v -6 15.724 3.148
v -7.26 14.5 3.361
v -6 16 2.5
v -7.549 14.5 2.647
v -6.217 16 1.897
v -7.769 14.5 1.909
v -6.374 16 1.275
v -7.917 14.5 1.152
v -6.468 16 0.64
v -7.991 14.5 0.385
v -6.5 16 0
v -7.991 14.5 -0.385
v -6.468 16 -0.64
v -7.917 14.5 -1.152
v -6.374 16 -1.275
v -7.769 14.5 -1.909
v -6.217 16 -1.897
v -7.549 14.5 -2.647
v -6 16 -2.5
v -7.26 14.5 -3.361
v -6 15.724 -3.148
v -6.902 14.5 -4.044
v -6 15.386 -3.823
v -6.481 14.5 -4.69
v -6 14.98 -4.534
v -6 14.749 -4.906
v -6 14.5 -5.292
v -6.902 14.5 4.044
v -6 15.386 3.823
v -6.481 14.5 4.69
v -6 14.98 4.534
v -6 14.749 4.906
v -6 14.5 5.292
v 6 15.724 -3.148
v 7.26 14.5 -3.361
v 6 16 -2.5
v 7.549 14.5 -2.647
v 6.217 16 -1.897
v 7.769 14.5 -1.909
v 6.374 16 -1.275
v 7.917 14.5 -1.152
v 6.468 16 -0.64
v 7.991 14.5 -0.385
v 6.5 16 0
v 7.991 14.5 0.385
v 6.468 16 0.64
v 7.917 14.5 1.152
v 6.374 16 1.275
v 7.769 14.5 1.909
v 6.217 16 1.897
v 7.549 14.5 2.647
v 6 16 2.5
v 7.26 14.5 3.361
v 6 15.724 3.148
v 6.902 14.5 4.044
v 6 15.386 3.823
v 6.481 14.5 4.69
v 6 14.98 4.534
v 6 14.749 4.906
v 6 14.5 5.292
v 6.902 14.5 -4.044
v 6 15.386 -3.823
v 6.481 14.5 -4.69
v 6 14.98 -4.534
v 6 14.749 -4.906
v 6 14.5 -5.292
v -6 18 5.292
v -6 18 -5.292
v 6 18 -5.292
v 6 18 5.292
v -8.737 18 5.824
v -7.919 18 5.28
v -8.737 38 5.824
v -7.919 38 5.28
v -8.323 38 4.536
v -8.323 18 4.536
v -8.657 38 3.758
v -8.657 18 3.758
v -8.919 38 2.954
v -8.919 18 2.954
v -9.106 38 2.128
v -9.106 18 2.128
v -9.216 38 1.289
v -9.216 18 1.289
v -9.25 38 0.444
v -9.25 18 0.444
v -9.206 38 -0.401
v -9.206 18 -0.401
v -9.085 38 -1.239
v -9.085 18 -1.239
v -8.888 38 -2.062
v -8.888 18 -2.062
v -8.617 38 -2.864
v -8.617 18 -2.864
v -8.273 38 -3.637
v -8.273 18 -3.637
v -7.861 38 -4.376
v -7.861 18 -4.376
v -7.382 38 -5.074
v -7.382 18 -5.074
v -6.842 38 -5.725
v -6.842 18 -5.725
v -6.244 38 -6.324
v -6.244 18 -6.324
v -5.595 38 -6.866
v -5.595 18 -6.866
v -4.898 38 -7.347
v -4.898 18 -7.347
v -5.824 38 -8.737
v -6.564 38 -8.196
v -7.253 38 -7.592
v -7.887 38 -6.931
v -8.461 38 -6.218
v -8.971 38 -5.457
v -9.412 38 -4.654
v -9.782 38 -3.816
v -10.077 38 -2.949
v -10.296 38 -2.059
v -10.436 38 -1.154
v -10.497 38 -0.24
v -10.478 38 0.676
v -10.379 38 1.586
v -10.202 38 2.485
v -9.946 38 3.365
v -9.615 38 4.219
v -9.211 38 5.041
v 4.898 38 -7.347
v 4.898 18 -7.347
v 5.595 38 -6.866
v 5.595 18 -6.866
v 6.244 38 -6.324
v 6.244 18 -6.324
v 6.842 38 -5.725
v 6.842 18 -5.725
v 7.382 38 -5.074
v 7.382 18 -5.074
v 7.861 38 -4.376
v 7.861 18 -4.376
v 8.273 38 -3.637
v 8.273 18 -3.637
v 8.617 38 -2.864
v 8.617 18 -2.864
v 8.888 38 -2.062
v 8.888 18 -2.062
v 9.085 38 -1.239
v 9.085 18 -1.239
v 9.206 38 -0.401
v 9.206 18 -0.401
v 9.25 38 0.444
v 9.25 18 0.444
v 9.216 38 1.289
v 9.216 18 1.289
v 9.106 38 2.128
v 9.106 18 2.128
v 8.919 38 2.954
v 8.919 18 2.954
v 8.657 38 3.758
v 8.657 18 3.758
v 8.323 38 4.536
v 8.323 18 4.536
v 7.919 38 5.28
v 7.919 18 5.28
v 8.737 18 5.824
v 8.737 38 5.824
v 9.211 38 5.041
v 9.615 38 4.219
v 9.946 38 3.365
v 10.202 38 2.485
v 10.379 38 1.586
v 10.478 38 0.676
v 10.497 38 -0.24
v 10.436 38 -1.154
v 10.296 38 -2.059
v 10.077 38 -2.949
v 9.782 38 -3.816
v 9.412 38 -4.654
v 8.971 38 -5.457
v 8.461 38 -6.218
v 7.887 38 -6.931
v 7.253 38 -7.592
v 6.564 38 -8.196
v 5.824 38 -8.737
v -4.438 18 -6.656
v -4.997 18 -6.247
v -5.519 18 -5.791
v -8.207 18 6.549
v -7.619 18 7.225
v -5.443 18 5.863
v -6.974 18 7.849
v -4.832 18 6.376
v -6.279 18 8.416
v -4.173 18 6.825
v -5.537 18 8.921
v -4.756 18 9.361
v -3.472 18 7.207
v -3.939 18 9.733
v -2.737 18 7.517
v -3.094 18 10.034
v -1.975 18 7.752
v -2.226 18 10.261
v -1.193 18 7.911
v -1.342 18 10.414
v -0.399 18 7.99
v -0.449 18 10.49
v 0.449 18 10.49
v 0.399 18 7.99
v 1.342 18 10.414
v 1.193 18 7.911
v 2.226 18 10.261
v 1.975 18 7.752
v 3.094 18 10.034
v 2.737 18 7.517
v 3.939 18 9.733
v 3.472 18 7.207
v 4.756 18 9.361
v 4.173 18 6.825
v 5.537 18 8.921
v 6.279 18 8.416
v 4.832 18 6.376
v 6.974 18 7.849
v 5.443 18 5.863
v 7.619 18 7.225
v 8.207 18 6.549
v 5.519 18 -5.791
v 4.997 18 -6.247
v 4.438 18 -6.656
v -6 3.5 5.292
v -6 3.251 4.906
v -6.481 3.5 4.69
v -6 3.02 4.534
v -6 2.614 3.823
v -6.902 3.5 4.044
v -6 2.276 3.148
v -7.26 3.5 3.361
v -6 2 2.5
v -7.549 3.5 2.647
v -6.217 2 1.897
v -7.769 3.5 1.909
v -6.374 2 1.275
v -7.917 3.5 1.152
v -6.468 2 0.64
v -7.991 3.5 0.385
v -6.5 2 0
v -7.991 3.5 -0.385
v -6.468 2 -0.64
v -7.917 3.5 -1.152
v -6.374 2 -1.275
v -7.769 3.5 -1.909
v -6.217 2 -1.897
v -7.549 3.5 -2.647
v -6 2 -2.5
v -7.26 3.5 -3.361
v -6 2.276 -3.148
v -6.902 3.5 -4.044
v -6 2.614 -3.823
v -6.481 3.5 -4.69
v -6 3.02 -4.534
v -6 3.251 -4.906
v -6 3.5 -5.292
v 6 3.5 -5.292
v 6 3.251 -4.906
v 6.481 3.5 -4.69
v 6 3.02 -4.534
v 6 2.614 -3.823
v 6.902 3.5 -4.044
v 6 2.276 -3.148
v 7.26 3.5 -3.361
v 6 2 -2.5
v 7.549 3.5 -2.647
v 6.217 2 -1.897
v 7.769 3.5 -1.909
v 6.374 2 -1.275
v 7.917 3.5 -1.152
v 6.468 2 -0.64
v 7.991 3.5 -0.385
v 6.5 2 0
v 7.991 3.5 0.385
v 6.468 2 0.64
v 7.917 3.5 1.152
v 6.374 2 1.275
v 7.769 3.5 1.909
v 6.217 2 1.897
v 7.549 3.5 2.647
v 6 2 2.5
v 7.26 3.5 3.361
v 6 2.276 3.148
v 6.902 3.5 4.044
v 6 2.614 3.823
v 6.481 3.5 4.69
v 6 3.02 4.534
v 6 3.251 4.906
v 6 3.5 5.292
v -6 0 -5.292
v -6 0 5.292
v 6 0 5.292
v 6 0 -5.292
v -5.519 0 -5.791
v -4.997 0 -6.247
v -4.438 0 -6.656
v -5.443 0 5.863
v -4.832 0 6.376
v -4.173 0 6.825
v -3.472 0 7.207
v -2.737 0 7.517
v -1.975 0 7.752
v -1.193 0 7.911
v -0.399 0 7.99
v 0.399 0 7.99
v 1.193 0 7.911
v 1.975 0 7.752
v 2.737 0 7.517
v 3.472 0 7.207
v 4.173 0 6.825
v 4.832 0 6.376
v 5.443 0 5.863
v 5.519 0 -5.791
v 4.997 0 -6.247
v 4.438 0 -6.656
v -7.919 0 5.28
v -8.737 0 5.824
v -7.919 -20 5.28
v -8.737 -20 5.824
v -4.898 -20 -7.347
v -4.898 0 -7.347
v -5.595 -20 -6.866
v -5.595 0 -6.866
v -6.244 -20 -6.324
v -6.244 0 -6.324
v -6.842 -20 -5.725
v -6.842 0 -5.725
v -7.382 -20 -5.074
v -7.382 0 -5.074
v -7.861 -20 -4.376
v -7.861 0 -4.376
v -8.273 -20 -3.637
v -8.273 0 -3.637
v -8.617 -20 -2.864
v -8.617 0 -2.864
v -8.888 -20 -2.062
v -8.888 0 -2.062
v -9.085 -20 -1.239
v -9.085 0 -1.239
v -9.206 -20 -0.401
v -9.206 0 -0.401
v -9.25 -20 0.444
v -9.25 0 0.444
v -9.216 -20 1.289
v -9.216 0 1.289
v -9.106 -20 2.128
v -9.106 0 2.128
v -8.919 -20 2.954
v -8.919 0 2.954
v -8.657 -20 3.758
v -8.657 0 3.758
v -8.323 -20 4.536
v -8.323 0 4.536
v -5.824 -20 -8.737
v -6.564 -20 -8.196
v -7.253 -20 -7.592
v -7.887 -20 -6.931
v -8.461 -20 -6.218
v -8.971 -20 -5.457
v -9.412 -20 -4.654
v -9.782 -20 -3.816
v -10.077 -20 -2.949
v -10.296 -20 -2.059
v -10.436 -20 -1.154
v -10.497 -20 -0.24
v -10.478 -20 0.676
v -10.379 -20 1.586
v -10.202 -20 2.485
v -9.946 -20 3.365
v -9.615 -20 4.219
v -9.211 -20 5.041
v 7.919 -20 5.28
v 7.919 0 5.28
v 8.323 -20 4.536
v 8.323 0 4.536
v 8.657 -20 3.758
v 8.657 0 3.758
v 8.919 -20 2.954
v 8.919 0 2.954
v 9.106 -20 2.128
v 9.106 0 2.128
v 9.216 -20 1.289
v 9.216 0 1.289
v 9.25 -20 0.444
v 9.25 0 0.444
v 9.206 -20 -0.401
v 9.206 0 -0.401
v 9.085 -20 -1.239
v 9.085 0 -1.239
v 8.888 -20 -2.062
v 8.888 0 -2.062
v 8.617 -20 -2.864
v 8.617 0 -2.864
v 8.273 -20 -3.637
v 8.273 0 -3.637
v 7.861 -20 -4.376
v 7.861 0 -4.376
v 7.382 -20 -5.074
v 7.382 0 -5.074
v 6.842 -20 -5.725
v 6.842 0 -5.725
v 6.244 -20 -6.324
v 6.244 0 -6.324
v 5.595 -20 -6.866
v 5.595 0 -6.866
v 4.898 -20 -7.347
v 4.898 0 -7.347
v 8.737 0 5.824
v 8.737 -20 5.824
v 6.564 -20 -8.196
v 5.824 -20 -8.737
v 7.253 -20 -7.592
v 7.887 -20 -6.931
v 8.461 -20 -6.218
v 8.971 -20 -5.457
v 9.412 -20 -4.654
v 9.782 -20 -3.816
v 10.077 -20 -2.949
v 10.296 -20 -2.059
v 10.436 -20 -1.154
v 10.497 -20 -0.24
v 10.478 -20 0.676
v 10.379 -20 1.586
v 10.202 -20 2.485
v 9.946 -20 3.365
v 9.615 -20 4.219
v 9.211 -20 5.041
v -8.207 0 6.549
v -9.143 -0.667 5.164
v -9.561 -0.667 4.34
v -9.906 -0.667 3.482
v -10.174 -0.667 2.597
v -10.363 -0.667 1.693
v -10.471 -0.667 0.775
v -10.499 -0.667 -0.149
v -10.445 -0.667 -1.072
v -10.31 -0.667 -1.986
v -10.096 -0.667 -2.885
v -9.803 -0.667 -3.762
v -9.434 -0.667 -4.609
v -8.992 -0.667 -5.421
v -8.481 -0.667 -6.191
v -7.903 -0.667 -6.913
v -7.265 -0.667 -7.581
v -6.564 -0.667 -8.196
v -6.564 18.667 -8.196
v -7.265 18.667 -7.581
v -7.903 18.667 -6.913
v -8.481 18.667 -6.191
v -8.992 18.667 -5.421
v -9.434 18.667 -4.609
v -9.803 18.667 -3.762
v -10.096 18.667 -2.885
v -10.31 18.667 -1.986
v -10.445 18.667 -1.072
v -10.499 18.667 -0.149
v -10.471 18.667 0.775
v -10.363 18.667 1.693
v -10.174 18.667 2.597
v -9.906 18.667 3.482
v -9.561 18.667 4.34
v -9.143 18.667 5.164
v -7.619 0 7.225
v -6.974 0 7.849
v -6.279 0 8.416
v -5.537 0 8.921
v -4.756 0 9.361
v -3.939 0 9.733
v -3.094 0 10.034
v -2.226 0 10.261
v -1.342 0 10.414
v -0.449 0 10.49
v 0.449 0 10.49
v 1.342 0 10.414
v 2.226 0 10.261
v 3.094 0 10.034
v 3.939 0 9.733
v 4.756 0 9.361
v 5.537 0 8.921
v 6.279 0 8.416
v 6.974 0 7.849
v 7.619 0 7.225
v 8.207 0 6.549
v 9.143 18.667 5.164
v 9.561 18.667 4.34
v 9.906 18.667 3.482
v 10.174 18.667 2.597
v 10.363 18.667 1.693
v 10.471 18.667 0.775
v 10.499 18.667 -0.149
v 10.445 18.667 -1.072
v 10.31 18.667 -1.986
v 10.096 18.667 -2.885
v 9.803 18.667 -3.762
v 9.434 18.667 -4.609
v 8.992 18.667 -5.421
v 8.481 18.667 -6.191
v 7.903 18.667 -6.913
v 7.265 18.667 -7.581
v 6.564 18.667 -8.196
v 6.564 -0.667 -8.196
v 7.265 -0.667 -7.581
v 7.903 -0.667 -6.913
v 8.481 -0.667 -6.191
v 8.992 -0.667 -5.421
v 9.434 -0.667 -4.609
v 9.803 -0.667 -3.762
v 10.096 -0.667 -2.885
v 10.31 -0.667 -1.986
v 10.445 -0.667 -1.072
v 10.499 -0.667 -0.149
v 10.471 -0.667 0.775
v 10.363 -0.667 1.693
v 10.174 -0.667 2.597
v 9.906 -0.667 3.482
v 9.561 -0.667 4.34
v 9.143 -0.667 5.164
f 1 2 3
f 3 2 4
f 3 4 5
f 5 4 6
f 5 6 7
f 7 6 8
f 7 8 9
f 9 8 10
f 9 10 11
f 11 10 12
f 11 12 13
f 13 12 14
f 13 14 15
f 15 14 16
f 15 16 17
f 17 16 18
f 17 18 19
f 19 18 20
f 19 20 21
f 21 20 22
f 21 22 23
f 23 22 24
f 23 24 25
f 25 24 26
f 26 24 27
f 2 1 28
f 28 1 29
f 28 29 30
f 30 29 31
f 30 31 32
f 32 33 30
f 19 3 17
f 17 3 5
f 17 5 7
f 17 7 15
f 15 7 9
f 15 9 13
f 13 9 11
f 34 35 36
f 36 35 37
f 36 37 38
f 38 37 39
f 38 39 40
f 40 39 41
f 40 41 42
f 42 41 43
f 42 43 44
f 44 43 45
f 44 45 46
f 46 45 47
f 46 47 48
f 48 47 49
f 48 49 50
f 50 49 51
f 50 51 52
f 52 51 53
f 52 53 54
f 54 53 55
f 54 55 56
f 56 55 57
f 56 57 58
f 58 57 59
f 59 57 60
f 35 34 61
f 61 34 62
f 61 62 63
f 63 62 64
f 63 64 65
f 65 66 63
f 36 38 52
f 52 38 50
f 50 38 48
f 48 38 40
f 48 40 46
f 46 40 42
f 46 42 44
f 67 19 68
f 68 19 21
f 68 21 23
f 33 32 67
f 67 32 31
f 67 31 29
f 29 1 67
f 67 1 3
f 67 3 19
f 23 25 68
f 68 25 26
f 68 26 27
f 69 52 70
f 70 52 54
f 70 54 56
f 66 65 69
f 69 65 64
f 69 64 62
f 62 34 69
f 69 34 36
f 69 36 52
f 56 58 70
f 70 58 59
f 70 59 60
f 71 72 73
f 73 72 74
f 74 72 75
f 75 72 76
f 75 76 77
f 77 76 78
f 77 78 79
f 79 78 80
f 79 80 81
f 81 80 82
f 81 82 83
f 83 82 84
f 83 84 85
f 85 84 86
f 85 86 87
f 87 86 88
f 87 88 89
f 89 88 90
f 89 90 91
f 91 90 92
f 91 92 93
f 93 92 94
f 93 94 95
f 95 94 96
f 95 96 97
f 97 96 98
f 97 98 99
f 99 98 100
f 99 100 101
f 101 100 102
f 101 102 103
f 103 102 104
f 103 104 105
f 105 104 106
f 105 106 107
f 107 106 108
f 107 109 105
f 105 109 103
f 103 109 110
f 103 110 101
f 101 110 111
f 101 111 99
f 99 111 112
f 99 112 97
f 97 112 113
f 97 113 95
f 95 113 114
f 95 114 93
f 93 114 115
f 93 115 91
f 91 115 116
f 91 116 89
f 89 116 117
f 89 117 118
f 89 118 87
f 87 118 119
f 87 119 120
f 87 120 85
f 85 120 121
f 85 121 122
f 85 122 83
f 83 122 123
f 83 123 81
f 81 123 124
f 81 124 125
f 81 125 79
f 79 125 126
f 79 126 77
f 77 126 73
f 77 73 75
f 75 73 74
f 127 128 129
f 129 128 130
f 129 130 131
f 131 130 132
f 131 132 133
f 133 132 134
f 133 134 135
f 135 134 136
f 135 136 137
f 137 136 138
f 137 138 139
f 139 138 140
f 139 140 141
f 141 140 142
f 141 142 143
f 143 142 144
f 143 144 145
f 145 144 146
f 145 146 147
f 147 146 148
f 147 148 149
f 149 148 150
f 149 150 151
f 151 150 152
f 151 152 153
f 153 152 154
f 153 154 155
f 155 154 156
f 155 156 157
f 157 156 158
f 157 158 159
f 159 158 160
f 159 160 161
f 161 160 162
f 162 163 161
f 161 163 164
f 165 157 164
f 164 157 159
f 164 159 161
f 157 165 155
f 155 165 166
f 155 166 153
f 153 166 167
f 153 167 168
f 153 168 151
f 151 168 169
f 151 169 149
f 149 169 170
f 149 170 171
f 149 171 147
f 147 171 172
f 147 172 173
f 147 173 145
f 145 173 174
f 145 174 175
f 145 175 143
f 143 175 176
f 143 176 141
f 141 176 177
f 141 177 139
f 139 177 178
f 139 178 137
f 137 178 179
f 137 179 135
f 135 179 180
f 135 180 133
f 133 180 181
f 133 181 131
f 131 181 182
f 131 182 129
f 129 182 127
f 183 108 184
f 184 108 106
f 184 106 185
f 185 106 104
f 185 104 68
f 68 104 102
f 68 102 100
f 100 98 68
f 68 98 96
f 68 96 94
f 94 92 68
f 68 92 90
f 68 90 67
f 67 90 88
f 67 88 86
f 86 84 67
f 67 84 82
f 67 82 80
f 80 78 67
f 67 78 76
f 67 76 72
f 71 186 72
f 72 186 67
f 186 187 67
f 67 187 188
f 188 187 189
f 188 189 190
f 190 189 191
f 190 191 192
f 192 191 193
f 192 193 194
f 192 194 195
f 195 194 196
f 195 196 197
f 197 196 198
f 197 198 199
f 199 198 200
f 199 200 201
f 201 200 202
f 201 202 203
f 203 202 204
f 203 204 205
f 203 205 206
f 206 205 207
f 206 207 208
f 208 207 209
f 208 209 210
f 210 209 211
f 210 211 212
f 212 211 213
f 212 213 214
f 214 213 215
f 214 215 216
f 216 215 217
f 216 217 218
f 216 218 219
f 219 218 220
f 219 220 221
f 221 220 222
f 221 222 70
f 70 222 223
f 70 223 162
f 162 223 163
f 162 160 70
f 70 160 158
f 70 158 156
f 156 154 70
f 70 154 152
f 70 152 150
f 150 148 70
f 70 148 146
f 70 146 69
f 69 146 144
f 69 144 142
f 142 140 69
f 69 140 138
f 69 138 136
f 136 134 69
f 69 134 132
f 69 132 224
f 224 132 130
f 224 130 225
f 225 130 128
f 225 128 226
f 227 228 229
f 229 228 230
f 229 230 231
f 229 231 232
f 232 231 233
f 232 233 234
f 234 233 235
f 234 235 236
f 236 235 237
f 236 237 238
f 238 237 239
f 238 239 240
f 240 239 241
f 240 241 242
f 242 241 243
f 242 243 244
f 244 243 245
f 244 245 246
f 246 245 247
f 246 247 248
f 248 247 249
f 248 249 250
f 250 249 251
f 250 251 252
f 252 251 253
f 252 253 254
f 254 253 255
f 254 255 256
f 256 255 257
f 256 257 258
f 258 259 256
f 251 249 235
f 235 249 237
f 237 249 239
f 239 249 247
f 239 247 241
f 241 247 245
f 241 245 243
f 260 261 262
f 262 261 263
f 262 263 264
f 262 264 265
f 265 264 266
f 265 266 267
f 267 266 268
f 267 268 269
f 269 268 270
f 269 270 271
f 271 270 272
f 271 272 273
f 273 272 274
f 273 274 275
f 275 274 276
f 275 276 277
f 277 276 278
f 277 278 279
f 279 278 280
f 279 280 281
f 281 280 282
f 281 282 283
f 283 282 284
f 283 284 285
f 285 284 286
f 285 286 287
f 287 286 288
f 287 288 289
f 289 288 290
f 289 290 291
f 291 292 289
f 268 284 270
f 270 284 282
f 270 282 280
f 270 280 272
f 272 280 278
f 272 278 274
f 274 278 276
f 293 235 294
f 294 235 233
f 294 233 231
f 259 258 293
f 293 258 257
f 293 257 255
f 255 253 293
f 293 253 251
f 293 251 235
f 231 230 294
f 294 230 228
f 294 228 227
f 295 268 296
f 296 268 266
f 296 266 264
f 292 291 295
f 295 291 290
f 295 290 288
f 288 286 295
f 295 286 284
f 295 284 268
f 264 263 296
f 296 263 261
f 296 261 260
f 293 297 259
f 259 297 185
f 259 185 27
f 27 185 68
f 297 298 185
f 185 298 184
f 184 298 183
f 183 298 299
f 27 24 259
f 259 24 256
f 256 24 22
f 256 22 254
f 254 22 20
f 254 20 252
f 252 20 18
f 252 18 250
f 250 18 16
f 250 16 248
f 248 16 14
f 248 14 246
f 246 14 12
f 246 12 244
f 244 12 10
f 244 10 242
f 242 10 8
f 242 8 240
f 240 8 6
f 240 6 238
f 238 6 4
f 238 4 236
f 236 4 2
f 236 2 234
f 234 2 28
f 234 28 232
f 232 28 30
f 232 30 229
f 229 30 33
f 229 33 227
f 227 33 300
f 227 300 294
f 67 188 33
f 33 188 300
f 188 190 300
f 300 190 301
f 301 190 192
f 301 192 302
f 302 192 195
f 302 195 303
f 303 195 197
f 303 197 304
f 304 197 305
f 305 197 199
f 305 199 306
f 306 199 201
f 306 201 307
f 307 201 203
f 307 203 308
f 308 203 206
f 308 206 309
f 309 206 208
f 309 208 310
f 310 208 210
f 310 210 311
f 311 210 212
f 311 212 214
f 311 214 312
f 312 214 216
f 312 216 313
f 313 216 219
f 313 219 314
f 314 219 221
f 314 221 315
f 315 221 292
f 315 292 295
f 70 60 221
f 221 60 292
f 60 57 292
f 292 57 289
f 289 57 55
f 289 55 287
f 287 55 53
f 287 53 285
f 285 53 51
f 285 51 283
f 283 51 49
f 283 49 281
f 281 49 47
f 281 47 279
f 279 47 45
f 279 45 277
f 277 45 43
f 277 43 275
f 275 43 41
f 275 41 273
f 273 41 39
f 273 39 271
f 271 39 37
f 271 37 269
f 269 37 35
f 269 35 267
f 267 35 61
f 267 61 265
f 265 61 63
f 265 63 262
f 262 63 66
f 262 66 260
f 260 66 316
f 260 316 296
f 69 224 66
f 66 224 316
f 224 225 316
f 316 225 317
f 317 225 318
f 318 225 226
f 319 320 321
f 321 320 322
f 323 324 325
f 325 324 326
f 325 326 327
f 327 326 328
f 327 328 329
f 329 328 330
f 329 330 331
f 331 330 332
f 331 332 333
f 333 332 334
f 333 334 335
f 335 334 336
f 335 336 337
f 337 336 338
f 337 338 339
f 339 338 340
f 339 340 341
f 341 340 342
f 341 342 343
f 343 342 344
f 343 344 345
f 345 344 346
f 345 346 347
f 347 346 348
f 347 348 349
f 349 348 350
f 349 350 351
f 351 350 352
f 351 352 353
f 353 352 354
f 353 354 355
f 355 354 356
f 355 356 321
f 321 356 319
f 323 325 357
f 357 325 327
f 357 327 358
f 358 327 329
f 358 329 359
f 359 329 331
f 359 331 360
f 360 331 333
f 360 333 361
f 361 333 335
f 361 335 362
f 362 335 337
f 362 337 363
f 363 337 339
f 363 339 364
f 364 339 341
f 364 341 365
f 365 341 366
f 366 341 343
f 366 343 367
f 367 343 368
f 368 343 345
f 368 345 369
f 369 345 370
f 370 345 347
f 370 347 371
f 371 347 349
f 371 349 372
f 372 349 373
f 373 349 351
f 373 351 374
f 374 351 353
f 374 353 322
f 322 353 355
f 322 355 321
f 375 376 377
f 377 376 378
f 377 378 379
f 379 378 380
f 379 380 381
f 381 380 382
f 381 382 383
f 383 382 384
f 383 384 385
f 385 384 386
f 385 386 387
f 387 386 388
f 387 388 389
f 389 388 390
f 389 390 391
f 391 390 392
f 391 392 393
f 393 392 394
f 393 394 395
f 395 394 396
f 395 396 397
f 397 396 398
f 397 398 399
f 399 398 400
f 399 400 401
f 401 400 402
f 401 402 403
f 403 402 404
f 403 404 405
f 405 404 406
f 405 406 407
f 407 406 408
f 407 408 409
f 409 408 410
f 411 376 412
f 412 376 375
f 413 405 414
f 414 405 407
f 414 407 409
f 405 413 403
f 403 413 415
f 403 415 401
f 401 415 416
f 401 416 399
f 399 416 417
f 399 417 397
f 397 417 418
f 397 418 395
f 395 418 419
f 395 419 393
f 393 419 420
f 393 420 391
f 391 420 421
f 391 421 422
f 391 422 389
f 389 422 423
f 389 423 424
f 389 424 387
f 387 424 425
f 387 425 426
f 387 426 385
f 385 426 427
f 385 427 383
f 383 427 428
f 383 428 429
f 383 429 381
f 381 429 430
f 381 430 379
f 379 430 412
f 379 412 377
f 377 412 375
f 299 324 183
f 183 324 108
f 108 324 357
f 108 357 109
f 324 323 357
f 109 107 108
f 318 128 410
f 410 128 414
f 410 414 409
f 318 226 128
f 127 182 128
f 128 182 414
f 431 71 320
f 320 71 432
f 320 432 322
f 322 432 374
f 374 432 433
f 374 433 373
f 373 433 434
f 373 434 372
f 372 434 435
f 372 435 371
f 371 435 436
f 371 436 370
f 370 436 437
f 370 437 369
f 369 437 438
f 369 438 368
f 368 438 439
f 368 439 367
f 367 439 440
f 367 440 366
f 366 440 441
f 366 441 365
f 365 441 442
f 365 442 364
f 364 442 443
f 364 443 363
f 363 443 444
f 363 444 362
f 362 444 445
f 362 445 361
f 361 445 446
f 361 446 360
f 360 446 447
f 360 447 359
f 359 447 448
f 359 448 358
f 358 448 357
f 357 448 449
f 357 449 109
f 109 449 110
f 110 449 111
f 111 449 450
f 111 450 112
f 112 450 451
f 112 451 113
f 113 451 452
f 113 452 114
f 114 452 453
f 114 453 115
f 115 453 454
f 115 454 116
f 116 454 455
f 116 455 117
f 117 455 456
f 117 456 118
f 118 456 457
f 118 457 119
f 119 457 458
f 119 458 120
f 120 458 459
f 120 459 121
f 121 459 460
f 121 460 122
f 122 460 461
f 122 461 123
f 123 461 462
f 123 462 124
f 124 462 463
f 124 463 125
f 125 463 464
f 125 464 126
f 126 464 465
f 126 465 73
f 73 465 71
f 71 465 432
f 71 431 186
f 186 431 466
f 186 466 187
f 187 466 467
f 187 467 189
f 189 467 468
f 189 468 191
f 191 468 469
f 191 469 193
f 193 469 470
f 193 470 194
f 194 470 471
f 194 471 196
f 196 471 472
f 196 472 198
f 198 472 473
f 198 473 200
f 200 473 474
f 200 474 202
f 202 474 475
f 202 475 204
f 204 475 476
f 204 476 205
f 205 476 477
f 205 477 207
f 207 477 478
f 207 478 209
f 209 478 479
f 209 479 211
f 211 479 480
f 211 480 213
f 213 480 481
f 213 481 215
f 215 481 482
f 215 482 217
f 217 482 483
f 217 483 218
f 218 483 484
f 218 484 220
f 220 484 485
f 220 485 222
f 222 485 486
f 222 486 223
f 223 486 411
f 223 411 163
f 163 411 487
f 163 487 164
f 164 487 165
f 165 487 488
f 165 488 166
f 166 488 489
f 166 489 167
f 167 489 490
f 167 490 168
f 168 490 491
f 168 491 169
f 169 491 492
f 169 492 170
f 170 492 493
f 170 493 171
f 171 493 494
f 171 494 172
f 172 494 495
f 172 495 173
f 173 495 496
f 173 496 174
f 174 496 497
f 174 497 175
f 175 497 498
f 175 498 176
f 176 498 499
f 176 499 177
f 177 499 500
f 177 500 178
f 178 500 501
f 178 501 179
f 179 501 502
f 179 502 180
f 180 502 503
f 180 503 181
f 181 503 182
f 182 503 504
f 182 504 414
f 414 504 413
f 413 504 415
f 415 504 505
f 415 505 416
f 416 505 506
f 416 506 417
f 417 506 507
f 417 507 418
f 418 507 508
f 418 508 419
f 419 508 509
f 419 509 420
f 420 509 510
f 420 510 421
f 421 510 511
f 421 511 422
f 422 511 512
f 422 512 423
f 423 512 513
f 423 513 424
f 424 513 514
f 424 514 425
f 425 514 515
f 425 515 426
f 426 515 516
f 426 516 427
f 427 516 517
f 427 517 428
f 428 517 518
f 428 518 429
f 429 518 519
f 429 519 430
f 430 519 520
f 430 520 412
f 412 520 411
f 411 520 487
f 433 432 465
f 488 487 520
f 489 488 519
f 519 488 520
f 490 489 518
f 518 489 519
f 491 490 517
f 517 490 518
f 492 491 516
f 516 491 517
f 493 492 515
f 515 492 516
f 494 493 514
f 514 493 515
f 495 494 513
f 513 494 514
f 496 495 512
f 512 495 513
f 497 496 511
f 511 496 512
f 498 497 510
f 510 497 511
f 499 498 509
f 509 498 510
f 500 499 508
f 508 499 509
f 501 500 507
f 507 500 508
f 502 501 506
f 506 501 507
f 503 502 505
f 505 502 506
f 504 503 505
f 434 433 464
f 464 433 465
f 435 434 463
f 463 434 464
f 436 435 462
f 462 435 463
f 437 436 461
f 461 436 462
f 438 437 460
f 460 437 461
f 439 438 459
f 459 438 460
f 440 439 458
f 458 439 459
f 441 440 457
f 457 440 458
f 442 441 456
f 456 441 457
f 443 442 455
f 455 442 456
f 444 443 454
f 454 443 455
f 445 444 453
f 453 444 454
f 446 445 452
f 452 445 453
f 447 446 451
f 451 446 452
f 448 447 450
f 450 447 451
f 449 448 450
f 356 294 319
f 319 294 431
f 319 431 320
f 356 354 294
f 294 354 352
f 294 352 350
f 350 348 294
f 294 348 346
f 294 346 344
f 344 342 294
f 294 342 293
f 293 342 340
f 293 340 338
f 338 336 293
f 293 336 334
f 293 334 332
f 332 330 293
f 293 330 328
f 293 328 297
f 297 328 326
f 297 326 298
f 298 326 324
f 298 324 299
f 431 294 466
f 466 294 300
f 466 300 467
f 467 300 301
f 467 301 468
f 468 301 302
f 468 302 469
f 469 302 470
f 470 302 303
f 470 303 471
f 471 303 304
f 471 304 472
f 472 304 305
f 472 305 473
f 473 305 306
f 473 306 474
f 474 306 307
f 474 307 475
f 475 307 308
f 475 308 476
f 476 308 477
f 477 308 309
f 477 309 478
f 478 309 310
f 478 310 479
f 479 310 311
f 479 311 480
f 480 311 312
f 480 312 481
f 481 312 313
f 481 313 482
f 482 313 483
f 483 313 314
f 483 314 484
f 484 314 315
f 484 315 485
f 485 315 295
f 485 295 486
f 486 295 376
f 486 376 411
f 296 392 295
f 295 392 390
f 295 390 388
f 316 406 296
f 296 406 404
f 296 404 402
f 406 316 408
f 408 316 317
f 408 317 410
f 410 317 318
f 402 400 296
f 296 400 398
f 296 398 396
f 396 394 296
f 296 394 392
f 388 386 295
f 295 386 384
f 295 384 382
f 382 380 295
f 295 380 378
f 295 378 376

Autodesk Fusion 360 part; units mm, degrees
sketch "Sketch1" plane through (0, 0, 0) normal (0, 1, 0) x (1, 0, 0)
  circle A0 centre (0, 0) radius 10.5
  circle A1 centre (0, -0.5) radius 9.25
  line L0 (8, 12) -> (0, 0)
  line L1 (0, 0) -> (-8, 12)
  line L2 (-12, -8) -> (0, 0)
  line L3 (0, 0) -> (12, -8)
  circle A2 centre (0, 0) radius 8
  line L4 (6, 8) -> (6, -7)
  line L5 (-6, 8) -> (-6, -7)
  point P0 (0, -0.5)
  dimension "d1" = 21
  dimension "d2" = 0.5
  dimension "d3" = 18.5
  dimension "d4" = 16
extrude "Extrude1" add sketch "Sketch1" along normal blind 9 contours A0 A1 L0 L3 | A0 A1 L2 L3 | A0 A1 L1 L2 | A1 L0 A2 L4 | A1 L3 A2 L4 | A1 L2 L3 A2 | A1 L1 A2 L5 | A1 L2 A2 L5
extrude "Extrude2" add sketch "Sketch1" against normal blind 20 contours A0 A1 L0 L3 | A0 A1 L1 L2
extrude "Extrude3" add sketch "Sketch1" along normal blind 2 contours L3 A2 L4 | L3 A2 L4 | L2 A2 L5 | L2 A2 L5
chamfer "Chamfer1" distance 1.5 angle 45 1 edges at (8, 2, 0)
chamfer "Chamfer1" distance 1.5 angle 45 1 edges at (-8, 2, 0)
mirror "Mirror1" about plane through (0, 9, 0) normal (0, 1, 0) of bodies 1 merged
